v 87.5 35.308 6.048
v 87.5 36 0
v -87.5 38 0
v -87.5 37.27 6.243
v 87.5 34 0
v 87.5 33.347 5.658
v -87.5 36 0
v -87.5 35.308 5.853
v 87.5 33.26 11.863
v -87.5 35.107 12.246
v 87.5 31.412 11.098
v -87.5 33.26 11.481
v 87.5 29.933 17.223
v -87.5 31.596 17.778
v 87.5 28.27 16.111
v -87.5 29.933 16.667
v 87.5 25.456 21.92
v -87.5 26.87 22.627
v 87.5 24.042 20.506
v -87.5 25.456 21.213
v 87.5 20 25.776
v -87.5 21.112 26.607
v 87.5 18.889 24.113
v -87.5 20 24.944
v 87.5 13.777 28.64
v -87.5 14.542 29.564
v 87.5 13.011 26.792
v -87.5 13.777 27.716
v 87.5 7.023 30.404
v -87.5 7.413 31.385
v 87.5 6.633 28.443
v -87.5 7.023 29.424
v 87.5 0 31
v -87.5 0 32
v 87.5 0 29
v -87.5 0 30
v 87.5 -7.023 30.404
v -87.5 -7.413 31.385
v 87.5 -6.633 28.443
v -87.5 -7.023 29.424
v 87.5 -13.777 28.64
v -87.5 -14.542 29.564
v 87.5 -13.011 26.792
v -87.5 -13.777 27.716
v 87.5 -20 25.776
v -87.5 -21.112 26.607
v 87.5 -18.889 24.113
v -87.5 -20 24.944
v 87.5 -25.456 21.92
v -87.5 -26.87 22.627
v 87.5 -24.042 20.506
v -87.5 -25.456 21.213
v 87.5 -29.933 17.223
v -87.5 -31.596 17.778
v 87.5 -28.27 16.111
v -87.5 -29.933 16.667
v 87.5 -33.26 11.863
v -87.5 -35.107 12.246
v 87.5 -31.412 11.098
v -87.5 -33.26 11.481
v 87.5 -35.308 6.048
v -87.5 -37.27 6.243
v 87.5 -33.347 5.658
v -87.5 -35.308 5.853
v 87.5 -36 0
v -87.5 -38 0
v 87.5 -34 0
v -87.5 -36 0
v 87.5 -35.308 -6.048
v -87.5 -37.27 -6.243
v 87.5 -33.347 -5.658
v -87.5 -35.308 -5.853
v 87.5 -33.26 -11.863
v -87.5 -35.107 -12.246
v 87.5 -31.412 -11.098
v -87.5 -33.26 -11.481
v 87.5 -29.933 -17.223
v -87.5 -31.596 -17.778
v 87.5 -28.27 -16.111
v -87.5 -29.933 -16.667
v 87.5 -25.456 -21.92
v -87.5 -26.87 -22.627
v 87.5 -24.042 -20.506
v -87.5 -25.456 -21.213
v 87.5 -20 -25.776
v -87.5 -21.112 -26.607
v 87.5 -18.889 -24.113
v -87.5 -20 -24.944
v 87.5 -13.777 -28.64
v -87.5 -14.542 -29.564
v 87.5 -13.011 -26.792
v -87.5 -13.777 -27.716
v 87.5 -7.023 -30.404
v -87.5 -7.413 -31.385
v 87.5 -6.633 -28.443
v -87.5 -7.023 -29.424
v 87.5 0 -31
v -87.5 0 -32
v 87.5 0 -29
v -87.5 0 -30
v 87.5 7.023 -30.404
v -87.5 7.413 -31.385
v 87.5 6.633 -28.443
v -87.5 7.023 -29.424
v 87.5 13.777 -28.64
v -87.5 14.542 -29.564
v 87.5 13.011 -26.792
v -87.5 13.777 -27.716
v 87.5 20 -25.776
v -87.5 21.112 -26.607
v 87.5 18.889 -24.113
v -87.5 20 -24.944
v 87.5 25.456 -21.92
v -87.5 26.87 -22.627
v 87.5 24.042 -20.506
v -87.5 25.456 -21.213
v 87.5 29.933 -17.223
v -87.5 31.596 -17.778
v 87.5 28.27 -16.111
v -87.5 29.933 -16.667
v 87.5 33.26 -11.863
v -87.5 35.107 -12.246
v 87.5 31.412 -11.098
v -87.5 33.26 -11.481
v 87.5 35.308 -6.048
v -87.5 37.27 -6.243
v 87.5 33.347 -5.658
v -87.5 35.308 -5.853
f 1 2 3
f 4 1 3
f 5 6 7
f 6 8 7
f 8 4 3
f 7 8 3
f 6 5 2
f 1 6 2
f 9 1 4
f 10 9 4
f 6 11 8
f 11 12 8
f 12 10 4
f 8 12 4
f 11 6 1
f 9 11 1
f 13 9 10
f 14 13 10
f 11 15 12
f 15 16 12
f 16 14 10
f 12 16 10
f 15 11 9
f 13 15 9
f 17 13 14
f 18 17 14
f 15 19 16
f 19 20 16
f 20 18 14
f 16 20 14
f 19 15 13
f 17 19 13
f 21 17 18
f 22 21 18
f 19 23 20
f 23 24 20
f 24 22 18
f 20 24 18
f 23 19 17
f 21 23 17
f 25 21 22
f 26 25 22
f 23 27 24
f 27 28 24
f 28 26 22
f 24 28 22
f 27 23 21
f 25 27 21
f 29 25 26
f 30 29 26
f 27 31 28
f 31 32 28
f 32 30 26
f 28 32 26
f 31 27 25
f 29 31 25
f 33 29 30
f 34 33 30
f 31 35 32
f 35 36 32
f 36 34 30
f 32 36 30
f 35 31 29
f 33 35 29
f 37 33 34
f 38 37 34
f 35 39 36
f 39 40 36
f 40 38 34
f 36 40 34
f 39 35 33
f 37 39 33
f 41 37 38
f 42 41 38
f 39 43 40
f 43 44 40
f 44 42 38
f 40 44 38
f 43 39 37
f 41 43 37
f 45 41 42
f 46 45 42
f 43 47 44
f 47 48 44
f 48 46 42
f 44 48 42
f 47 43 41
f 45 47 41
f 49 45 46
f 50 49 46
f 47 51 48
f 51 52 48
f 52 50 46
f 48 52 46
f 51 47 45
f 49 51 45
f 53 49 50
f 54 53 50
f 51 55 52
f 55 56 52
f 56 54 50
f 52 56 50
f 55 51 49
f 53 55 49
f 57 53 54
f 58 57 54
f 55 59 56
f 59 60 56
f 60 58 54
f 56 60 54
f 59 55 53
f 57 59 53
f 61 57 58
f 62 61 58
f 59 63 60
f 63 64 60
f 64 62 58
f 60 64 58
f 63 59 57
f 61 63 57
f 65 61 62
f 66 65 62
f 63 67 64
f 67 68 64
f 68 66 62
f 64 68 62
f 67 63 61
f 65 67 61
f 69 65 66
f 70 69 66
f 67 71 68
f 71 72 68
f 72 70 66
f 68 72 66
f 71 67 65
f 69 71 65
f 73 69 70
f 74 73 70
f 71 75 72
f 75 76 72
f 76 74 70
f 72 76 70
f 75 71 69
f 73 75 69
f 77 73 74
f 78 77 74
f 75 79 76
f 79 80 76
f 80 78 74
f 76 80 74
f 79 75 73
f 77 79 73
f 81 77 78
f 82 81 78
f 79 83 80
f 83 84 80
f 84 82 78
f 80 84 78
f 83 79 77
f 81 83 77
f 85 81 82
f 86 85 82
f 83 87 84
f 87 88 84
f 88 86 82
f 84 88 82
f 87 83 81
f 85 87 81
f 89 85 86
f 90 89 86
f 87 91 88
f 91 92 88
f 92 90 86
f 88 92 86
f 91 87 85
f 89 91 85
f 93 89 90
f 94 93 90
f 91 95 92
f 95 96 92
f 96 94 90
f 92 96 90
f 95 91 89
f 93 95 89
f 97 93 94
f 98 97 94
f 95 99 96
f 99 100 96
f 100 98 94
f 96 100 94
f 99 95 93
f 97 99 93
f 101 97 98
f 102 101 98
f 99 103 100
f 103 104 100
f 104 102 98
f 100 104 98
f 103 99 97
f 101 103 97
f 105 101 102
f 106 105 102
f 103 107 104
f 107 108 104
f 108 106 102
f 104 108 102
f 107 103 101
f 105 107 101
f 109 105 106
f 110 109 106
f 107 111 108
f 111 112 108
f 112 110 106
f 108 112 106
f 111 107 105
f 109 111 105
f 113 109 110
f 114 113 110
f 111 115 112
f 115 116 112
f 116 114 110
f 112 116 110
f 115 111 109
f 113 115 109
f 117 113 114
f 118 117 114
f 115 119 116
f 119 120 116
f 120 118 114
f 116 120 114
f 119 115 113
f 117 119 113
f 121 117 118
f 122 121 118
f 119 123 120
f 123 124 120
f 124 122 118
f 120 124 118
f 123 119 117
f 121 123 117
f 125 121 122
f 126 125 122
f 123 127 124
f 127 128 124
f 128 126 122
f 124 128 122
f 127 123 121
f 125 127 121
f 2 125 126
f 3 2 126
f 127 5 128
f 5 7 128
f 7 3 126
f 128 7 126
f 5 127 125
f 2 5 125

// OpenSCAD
polyhedron(points=[[-87.5, 38.0, 0.0], [-87.5, 37.269841, 6.24289], [-87.5, 35.107422, 12.24587], [-87.5, 31.595845, 17.778247], [-87.5, 26.870058, 22.627417], [-87.5, 21.111669, 26.607028], [-87.5, 14.54197, 29.564145], [-87.5, 7.413432, 31.385129], [-87.5, 0.0, 32.0], [-87.5, -7.413432, 31.385129], [-87.5, -14.54197, 29.564145], [-87.5, -21.111669, 26.607028], [-87.5, -26.870058, 22.627417], [-87.5, -31.595845, 17.778247], [-87.5, -35.107422, 12.24587], [-87.5, -37.269841, 6.24289], [-87.5, -38.0, 0.0], [-87.5, -37.269841, -6.24289], [-87.5, -35.107422, -12.24587], [-87.5, -31.595845, -17.778247], [-87.5, -26.870058, -22.627417], [-87.5, -21.111669, -26.607028], [-87.5, -14.54197, -29.564145], [-87.5, -7.413432, -31.385129], [-87.5, -0.0, -32.0], [-87.5, 7.413432, -31.385129], [-87.5, 14.54197, -29.564145], [-87.5, 21.111669, -26.607028], [-87.5, 26.870058, -22.627417], [-87.5, 31.595845, -17.778247], [-87.5, 35.107422, -12.24587], [-87.5, 37.269841, -6.24289], [-87.5, 36.0, 0.0], [-87.5, 35.30827, 5.85271], [-87.5, 33.259663, 11.480503], [-87.5, 29.932906, 16.667107], [-87.5, 25.455844, 21.213203], [-87.5, 20.000528, 24.944088], [-87.5, 13.776604, 27.716386], [-87.5, 7.023252, 29.423558], [-87.5, 0.0, 30.0], [-87.5, -7.023252, 29.423558], [-87.5, -13.776604, 27.716386], [-87.5, -20.000528, 24.944088], [-87.5, -25.455844, 21.213203], [-87.5, -29.932906, 16.667107], [-87.5, -33.259663, 11.480503], [-87.5, -35.30827, 5.85271], [-87.5, -36.0, 0.0], [-87.5, -35.30827, -5.85271], [-87.5, -33.259663, -11.480503], [-87.5, -29.932906, -16.667107], [-87.5, -25.455844, -21.213203], [-87.5, -20.000528, -24.944088], [-87.5, -13.776604, -27.716386], [-87.5, -7.023252, -29.423558], [-87.5, -0.0, -30.0], [-87.5, 7.023252, -29.423558], [-87.5, 13.776604, -27.716386], [-87.5, 20.000528, -24.944088], [-87.5, 25.455844, -21.213203], [-87.5, 29.932906, -16.667107], [-87.5, 33.259663, -11.480503], [-87.5, 35.30827, -5.85271], [87.5, 36.0, 0.0], [87.5, 35.30827, 6.0478], [87.5, 33.259663, 11.863186], [87.5, 29.932906, 17.222677], [87.5, 25.455844, 21.92031], [87.5, 20.000528, 25.775558], [87.5, 13.776604, 28.640266], [87.5, 7.023252, 30.404344], [87.5, 0.0, 31.0], [87.5, -7.023252, 30.404344], [87.5, -13.776604, 28.640266], [87.5, -20.000528, 25.775558], [87.5, -25.455844, 21.92031], [87.5, -29.932906, 17.222677], [87.5, -33.259663, 11.863186], [87.5, -35.30827, 6.0478], [87.5, -36.0, 0.0], [87.5, -35.30827, -6.0478], [87.5, -33.259663, -11.863186], [87.5, -29.932906, -17.222677], [87.5, -25.455844, -21.92031], [87.5, -20.000528, -25.775558], [87.5, -13.776604, -28.640266], [87.5, -7.023252, -30.404344], [87.5, -0.0, -31.0], [87.5, 7.023252, -30.404344], [87.5, 13.776604, -28.640266], [87.5, 20.000528, -25.775558], [87.5, 25.455844, -21.92031], [87.5, 29.932906, -17.222677], [87.5, 33.259663, -11.863186], [87.5, 35.30827, -6.0478], [87.5, 34.0, 0.0], [87.5, 33.3467, 5.657619], [87.5, 31.411904, 11.09782], [87.5, 28.269967, 16.111537], [87.5, 24.041631, 20.506097], [87.5, 18.889388, 24.112619], [87.5, 13.011237, 26.792506], [87.5, 6.633071, 28.442773], [87.5, 0.0, 29.0], [87.5, -6.633071, 28.442773], [87.5, -13.011237, 26.792506], [87.5, -18.889388, 24.112619], [87.5, -24.041631, 20.506097], [87.5, -28.269967, 16.111537], [87.5, -31.411904, 11.09782], [87.5, -33.3467, 5.657619], [87.5, -34.0, 0.0], [87.5, -33.3467, -5.657619], [87.5, -31.411904, -11.09782], [87.5, -28.269967, -16.111537], [87.5, -24.041631, -20.506097], [87.5, -18.889388, -24.112619], [87.5, -13.011237, -26.792506], [87.5, -6.633071, -28.442773], [87.5, -0.0, -29.0], [87.5, 6.633071, -28.442773], [87.5, 13.011237, -26.792506], [87.5, 18.889388, -24.112619], [87.5, 24.041631, -20.506097], [87.5, 28.269967, -16.111537], [87.5, 31.411904, -11.09782], [87.5, 33.3467, -5.657619]], faces=[[0, 64, 65], [0, 65, 1], [32, 97, 96], [32, 33, 97], [0, 1, 33], [0, 33, 32], [64, 96, 97], [64, 97, 65], [1, 65, 66], [1, 66, 2], [33, 98, 97], [33, 34, 98], [1, 2, 34], [1, 34, 33], [65, 97, 98], [65, 98, 66], [2, 66, 67], [2, 67, 3], [34, 99, 98], [34, 35, 99], [2, 3, 35], [2, 35, 34], [66, 98, 99], [66, 99, 67], [3, 67, 68], [3, 68, 4], [35, 100, 99], [35, 36, 100], [3, 4, 36], [3, 36, 35], [67, 99, 100], [67, 100, 68], [4, 68, 69], [4, 69, 5], [36, 101, 100], [36, 37, 101], [4, 5, 37], [4, 37, 36], [68, 100, 101], [68, 101, 69], [5, 69, 70], [5, 70, 6], [37, 102, 101], [37, 38, 102], [5, 6, 38], [5, 38, 37], [69, 101, 102], [69, 102, 70], [6, 70, 71], [6, 71, 7], [38, 103, 102], [38, 39, 103], [6, 7, 39], [6, 39, 38], [70, 102, 103], [70, 103, 71], [7, 71, 72], [7, 72, 8], [39, 104, 103], [39, 40, 104], [7, 8, 40], [7, 40, 39], [71, 103, 104], [71, 104, 72], [8, 72, 73], [8, 73, 9], [40, 105, 104], [40, 41, 105], [8, 9, 41], [8, 41, 40], [72, 104, 105], [72, 105, 73], [9, 73, 74], [9, 74, 10], [41, 106, 105], [41, 42, 106], [9, 10, 42], [9, 42, 41], [73, 105, 106], [73, 106, 74], [10, 74, 75], [10, 75, 11], [42, 107, 106], [42, 43, 107], [10, 11, 43], [10, 43, 42], [74, 106, 107], [74, 107, 75], [11, 75, 76], [11, 76, 12], [43, 108, 107], [43, 44, 108], [11, 12, 44], [11, 44, 43], [75, 107, 108], [75, 108, 76], [12, 76, 77], [12, 77, 13], [44, 109, 108], [44, 45, 109], [12, 13, 45], [12, 45, 44], [76, 108, 109], [76, 109, 77], [13, 77, 78], [13, 78, 14], [45, 110, 109], [45, 46, 110], [13, 14, 46], [13, 46, 45], [77, 109, 110], [77, 110, 78], [14, 78, 79], [14, 79, 15], [46, 111, 110], [46, 47, 111], [14, 15, 47], [14, 47, 46], [78, 110, 111], [78, 111, 79], [15, 79, 80], [15, 80, 16], [47, 112, 111], [47, 48, 112], [15, 16, 48], [15, 48, 47], [79, 111, 112], [79, 112, 80], [16, 80, 81], [16, 81, 17], [48, 113, 112], [48, 49, 113], [16, 17, 49], [16, 49, 48], [80, 112, 113], [80, 113, 81], [17, 81, 82], [17, 82, 18], [49, 114, 113], [49, 50, 114], [17, 18, 50], [17, 50, 49], [81, 113, 114], [81, 114, 82], [18, 82, 83], [18, 83, 19], [50, 115, 114], [50, 51, 115], [18, 19, 51], [18, 51, 50], [82, 114, 115], [82, 115, 83], [19, 83, 84], [19, 84, 20], [51, 116, 115], [51, 52, 116], [19, 20, 52], [19, 52, 51], [83, 115, 116], [83, 116, 84], [20, 84, 85], [20, 85, 21], [52, 117, 116], [52, 53, 117], [20, 21, 53], [20, 53, 52], [84, 116, 117], [84, 117, 85], [21, 85, 86], [21, 86, 22], [53, 118, 117], [53, 54, 118], [21, 22, 54], [21, 54, 53], [85, 117, 118], [85, 118, 86], [22, 86, 87], [22, 87, 23], [54, 119, 118], [54, 55, 119], [22, 23, 55], [22, 55, 54], [86, 118, 119], [86, 119, 87], [23, 87, 88], [23, 88, 24], [55, 120, 119], [55, 56, 120], [23, 24, 56], [23, 56, 55], [87, 119, 120], [87, 120, 88], [24, 88, 89], [24, 89, 25], [56, 121, 120], [56, 57, 121], [24, 25, 57], [24, 57, 56], [88, 120, 121], [88, 121, 89], [25, 89, 90], [25, 90, 26], [57, 122, 121], [57, 58, 122], [25, 26, 58], [25, 58, 57], [89, 121, 122], [89, 122, 90], [26, 90, 91], [26, 91, 27], [58, 123, 122], [58, 59, 123], [26, 27, 59], [26, 59, 58], [90, 122, 123], [90, 123, 91], [27, 91, 92], [27, 92, 28], [59, 124, 123], [59, 60, 124], [27, 28, 60], [27, 60, 59], [91, 123, 124], [91, 124, 92], [28, 92, 93], [28, 93, 29], [60, 125, 124], [60, 61, 125], [28, 29, 61], [28, 61, 60], [92, 124, 125], [92, 125, 93], [29, 93, 94], [29, 94, 30], [61, 126, 125], [61, 62, 126], [29, 30, 62], [29, 62, 61], [93, 125, 126], [93, 126, 94], [30, 94, 95], [30, 95, 31], [62, 127, 126], [62, 63, 127], [30, 31, 63], [30, 63, 62], [94, 126, 127], [94, 127, 95], [31, 95, 64], [31, 64, 0], [63, 96, 127], [63, 32, 96], [31, 0, 32], [31, 32, 63], [95, 127, 96], [95, 96, 64]], convexity=20);
